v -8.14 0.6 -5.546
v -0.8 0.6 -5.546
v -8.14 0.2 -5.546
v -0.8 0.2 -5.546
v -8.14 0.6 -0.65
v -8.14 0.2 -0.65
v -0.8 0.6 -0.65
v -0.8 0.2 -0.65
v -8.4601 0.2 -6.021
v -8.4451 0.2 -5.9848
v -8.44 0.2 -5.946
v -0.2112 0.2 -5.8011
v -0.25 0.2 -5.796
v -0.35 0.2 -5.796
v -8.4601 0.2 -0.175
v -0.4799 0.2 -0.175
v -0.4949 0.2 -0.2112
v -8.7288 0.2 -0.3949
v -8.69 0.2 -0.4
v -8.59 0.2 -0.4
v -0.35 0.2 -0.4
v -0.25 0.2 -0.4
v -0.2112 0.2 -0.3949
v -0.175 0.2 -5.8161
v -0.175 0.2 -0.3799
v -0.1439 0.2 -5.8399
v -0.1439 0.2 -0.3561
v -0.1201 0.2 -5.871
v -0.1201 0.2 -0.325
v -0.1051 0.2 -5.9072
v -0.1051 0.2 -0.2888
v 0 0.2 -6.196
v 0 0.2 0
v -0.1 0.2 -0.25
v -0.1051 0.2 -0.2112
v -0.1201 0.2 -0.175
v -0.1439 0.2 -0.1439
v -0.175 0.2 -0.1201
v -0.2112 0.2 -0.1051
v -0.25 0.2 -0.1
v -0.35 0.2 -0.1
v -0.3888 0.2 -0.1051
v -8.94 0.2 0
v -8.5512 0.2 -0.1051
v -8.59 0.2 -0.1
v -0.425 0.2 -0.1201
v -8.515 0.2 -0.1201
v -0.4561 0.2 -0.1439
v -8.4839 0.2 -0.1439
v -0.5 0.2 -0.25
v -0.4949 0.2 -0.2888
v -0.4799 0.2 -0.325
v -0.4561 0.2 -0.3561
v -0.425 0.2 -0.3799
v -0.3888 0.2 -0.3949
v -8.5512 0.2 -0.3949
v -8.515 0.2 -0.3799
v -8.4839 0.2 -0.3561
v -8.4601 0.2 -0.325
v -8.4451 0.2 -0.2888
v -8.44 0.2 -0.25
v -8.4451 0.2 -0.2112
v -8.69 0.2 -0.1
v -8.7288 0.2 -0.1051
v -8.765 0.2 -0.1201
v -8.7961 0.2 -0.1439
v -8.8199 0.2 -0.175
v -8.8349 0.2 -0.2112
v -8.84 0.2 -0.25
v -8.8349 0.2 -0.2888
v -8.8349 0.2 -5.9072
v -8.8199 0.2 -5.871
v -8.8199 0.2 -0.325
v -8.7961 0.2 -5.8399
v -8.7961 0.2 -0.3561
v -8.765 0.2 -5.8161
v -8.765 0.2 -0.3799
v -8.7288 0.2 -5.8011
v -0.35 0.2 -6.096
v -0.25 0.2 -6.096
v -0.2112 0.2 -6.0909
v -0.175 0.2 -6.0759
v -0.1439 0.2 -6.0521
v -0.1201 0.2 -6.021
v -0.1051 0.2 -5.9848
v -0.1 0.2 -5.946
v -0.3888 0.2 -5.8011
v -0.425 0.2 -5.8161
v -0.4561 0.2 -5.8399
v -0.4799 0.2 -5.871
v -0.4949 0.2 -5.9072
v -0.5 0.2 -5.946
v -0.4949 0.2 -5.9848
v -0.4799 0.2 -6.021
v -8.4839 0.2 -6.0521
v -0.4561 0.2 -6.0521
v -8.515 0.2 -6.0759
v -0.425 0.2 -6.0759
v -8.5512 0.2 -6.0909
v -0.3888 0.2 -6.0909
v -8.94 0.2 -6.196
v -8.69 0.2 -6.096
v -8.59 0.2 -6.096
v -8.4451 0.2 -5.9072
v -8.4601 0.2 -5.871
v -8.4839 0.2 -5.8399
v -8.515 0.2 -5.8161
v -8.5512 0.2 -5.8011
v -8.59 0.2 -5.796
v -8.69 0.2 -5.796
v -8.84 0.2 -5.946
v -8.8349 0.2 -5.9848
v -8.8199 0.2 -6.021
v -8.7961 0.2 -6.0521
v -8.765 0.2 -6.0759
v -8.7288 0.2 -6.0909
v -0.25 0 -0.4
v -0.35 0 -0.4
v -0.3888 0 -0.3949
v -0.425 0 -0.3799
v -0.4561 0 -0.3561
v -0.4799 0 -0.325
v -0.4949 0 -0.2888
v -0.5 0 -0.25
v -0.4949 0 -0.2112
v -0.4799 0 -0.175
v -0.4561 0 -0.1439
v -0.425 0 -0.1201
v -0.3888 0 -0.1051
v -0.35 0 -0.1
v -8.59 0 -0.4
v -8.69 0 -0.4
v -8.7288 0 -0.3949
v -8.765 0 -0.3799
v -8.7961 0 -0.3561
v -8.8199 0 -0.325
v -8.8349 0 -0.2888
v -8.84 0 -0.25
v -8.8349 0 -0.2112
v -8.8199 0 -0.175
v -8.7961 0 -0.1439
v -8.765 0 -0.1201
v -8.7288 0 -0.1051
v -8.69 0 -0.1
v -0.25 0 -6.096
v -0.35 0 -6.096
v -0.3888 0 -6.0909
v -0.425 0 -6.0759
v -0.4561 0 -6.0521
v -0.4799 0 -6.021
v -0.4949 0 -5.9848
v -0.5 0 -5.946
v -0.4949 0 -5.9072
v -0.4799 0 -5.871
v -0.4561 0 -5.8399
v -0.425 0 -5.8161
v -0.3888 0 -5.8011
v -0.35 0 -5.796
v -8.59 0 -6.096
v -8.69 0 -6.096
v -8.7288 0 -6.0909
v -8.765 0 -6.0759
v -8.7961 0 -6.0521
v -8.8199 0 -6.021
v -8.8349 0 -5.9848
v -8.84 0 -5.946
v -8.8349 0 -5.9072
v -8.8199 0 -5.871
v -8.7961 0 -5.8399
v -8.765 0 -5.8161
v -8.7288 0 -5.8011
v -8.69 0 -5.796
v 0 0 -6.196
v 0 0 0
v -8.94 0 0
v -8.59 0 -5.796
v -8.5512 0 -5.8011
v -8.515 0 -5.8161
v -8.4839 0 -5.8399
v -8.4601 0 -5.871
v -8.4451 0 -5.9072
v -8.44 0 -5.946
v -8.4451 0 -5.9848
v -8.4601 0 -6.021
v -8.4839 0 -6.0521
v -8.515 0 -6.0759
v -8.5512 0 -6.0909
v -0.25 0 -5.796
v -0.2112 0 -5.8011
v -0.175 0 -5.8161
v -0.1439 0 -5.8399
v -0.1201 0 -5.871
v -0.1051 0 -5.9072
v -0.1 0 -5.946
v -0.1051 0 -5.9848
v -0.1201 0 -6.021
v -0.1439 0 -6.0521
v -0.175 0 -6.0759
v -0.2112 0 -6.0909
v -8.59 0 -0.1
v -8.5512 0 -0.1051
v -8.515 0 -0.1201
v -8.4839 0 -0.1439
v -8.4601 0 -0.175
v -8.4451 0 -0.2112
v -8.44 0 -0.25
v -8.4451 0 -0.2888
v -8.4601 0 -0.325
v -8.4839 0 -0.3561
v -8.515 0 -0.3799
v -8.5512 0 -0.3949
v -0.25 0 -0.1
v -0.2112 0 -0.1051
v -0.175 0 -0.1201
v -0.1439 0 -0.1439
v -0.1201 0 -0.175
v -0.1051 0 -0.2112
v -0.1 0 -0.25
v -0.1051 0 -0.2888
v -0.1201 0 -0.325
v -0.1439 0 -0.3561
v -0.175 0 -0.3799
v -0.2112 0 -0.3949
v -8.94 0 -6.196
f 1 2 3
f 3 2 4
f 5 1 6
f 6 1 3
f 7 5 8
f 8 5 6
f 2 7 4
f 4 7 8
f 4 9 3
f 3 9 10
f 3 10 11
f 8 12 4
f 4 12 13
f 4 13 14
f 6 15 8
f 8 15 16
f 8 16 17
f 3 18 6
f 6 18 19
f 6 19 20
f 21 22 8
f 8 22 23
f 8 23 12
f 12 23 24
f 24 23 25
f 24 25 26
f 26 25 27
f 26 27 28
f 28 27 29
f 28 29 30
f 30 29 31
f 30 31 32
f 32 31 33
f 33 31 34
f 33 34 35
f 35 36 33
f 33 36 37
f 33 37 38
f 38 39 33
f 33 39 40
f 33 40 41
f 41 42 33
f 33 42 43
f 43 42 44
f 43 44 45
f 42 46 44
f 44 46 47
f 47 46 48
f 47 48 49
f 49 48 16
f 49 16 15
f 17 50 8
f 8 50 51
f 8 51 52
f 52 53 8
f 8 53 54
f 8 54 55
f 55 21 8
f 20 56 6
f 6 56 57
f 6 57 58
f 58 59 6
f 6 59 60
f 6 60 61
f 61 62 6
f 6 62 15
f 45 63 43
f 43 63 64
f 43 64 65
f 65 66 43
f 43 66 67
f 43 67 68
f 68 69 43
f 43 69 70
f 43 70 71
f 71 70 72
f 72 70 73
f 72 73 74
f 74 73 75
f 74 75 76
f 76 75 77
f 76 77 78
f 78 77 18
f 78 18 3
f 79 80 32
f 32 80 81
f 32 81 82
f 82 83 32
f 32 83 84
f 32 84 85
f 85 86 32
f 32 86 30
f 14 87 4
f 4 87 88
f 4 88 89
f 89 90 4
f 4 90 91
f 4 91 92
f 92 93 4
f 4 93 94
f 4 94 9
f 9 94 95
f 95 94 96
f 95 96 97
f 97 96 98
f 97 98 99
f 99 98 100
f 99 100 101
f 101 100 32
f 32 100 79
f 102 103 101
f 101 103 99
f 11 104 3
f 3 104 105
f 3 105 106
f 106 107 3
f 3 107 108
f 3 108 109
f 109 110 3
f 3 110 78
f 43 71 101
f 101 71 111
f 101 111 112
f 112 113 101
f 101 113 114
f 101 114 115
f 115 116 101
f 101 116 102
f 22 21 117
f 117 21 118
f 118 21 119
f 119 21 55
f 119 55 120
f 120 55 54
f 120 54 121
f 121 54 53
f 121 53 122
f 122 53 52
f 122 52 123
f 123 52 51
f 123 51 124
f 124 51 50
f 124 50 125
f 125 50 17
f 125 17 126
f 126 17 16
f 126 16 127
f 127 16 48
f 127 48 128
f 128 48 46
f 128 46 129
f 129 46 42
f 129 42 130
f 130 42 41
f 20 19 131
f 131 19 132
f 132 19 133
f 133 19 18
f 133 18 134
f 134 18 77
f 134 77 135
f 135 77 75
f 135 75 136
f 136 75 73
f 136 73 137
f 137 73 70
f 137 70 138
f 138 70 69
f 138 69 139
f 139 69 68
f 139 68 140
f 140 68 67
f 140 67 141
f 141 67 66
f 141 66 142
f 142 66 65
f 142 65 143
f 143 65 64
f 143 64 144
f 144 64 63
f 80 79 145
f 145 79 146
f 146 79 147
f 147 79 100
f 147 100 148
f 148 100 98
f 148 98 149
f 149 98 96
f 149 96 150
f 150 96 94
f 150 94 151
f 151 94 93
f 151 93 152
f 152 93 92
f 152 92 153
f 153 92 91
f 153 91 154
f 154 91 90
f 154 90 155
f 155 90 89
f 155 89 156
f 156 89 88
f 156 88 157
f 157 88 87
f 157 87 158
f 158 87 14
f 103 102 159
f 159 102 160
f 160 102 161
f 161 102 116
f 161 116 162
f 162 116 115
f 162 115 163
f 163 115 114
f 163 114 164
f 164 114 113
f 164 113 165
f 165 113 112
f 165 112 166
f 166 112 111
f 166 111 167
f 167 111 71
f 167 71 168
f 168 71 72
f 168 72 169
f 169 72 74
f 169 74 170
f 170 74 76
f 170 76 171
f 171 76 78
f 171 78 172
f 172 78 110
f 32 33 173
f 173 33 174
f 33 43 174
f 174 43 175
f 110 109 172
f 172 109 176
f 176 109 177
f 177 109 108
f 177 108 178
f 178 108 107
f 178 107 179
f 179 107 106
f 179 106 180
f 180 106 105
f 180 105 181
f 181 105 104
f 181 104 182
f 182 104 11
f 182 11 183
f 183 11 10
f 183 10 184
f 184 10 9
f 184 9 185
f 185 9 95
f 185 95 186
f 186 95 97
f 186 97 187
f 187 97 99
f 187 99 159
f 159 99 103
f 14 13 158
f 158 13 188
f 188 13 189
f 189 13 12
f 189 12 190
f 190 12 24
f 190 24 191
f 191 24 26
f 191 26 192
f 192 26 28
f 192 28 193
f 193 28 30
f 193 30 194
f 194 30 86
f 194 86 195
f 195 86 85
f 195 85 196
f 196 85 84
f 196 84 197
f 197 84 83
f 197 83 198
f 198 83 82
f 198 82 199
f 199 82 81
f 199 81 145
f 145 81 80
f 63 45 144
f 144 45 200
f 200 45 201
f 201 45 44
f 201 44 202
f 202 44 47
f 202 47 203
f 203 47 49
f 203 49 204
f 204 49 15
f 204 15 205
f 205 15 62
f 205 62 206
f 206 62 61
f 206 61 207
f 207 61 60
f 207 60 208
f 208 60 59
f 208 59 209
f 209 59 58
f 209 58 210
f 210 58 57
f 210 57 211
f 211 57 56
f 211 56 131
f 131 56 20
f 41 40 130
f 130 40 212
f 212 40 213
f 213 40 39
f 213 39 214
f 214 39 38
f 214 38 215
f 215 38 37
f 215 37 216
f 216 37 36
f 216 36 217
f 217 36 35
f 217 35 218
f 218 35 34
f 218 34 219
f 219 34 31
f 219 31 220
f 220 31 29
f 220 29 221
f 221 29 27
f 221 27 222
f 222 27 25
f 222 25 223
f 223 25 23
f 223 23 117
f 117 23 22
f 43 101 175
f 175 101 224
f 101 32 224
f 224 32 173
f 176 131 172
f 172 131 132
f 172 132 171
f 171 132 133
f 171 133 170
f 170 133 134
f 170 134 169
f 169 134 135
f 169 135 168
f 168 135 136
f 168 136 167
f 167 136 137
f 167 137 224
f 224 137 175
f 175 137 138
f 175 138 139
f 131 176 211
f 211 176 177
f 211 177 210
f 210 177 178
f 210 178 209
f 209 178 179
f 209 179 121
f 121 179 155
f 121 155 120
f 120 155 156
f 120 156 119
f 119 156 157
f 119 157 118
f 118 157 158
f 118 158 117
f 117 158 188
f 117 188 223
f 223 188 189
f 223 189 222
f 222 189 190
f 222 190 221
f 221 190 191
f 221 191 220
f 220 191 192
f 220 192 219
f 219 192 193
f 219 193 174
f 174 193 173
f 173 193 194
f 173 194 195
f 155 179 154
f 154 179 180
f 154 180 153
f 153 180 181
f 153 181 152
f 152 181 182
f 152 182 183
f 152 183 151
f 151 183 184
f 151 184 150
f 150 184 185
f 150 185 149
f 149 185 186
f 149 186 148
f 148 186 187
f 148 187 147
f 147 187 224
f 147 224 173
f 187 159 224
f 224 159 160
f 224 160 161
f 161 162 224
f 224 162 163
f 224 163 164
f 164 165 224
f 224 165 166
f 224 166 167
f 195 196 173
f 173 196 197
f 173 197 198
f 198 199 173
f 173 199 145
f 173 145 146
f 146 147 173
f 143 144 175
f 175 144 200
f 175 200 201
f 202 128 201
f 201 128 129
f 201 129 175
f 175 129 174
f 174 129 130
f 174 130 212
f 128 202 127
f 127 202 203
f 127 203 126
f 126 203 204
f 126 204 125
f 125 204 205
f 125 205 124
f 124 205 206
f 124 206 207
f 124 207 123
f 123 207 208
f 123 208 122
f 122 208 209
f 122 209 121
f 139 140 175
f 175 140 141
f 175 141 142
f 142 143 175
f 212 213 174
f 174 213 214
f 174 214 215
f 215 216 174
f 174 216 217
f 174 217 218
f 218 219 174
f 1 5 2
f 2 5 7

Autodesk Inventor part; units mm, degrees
ref_plane "YZ Plane" through (0, 0, 0) normal (1, 0, 0) x (0, 1, 0)
ref_plane "XZ Plane" through (0, 0, 0) normal (0, 1, 0) x (-1, 0, 0)
sketch "Boceto6" plane through (0, 0, 0) normal (0, 1, 0) x (-1, 0, 0)
  line L0 (0, 0) -> (8.94, 0)
  line L1 (8.94, 0) -> (8.94, -6.196)
  line L2 (8.94, -6.196) -> (0, -6.196)
  line L3 (0, -6.196) -> (0, 0)
  arc A0 (0.25, -0.1) -> (0.25, -0.4) centre (0.25, -0.25) ccw
  arc A1 (0.35, -0.4) -> (0.35, -0.1) centre (0.35, -0.25) ccw
  line L4 (0.25, -0.4) -> (0.35, -0.4)
  line L5 (0.25, -0.1) -> (0.35, -0.1)
  arc A2 (8.59, -0.1) -> (8.59, -0.4) centre (8.59, -0.25) ccw
  arc A3 (8.69, -0.4) -> (8.69, -0.1) centre (8.69, -0.25) ccw
  line L6 (8.59, -0.4) -> (8.69, -0.4)
  line L7 (8.59, -0.1) -> (8.69, -0.1)
  arc A4 (0.25, -5.796) -> (0.25, -6.096) centre (0.25, -5.946) ccw
  arc A5 (0.35, -6.096) -> (0.35, -5.796) centre (0.35, -5.946) ccw
  line L8 (0.25, -6.096) -> (0.35, -6.096)
  line L9 (0.25, -5.796) -> (0.35, -5.796)
  arc A6 (8.59, -5.796) -> (8.59, -6.096) centre (8.59, -5.946) ccw
  arc A7 (8.69, -6.096) -> (8.69, -5.796) centre (8.69, -5.946) ccw
  line L10 (8.59, -6.096) -> (8.69, -6.096)
  line L11 (8.59, -5.796) -> (8.69, -5.796)
extrude "Extrusión4" add sketch "Boceto6" along normal blind 0.6
sketch "Boceto7" plane through (0, 0.6, 0) normal (0, 1, 0) x (1, 0, 0)
  line L0 (-8.59, 5.796) -> (-8.69, 5.796) projected
  arc A0 (-8.69, 6.096) -> (-8.69, 5.796) centre (-8.69, 5.946) ccw projected
  line L1 (-8.69, 6.096) -> (-8.59, 6.096) projected
  arc A1 (-8.59, 5.796) -> (-8.59, 6.096) centre (-8.59, 5.946) ccw projected
  line L2 (-0.25, 5.796) -> (-0.35, 5.796) projected
  arc A2 (-0.35, 6.096) -> (-0.35, 5.796) centre (-0.35, 5.946) ccw projected
  line L3 (-0.35, 6.096) -> (-0.25, 6.096) projected
  arc A3 (-0.25, 5.796) -> (-0.25, 6.096) centre (-0.25, 5.946) ccw projected
  line L4 (-8.59, 0.1) -> (-8.69, 0.1) projected
  arc A4 (-8.69, 0.4) -> (-8.69, 0.1) centre (-8.69, 0.25) ccw projected
  line L5 (-8.69, 0.4) -> (-8.59, 0.4) projected
  arc A5 (-8.59, 0.1) -> (-8.59, 0.4) centre (-8.59, 0.25) ccw projected
  line L6 (-0.25, 0.1) -> (-0.35, 0.1) projected
  arc A6 (-0.35, 0.4) -> (-0.35, 0.1) centre (-0.35, 0.25) ccw projected
  line L7 (-0.35, 0.4) -> (-0.25, 0.4) projected
  arc A7 (-0.25, 0.1) -> (-0.25, 0.4) centre (-0.25, 0.25) ccw projected
  line L8 (-8.94, 0) -> (0, 0) projected
  line L9 (0, 0) -> (0, 6.196) projected
  line L10 (0, 6.196) -> (-8.94, 6.196) projected
  line L11 (-8.94, 6.196) -> (-8.94, 0) projected
  line L12 (-8.94, 6.196) -> (0, 6.196) projected
  line L13 (0, 0) -> (0, 6.196) projected
  line L14 (-0.8, 5.546) -> (-0.8, 0.65)
  line L15 (-0.8, 0.65) -> (-8.14, 0.65)
  line L16 (-8.14, 0.65) -> (-8.14, 5.546)
  line L17 (-8.14, 5.546) -> (-0.8, 5.546)
extrude "Extrusión5" cut sketch "Boceto7" against normal blind 0.4
ref_plane "Plano de trabajo2" through (0, 2.3, 0) normal (0, 1, 0) x (1, 0, 0)
sketch "Boceto9" plane through (0, 2.3, 0) normal (0, 1, 0) x (1, 0, 0)
  line L0 (-8.4305, 5.546) -> (-0.2383, 5.546) construction
  line L1 (-0.2383, 5.546) -> (-0.2383, 0.5947) construction
  line L2 (-0.2383, 0.5947) -> (-8.4305, 0.5947) construction
  line L3 (-8.4305, 0.5947) -> (-8.4305, 5.546) construction
  line L4 (-0.8, 5.546) -> (-8.14, 5.546) projected
  line L5 (-8.14, 5.546) -> (-8.14, 0.65) projected
  line L6 (-8.14, 0.65) -> (-0.8, 0.65) projected
  line L7 (-0.8, 0.65) -> (-0.8, 5.546) projected
  point P0 (0, 0)
decal "Calcomanía1"
properties part number "screen"
